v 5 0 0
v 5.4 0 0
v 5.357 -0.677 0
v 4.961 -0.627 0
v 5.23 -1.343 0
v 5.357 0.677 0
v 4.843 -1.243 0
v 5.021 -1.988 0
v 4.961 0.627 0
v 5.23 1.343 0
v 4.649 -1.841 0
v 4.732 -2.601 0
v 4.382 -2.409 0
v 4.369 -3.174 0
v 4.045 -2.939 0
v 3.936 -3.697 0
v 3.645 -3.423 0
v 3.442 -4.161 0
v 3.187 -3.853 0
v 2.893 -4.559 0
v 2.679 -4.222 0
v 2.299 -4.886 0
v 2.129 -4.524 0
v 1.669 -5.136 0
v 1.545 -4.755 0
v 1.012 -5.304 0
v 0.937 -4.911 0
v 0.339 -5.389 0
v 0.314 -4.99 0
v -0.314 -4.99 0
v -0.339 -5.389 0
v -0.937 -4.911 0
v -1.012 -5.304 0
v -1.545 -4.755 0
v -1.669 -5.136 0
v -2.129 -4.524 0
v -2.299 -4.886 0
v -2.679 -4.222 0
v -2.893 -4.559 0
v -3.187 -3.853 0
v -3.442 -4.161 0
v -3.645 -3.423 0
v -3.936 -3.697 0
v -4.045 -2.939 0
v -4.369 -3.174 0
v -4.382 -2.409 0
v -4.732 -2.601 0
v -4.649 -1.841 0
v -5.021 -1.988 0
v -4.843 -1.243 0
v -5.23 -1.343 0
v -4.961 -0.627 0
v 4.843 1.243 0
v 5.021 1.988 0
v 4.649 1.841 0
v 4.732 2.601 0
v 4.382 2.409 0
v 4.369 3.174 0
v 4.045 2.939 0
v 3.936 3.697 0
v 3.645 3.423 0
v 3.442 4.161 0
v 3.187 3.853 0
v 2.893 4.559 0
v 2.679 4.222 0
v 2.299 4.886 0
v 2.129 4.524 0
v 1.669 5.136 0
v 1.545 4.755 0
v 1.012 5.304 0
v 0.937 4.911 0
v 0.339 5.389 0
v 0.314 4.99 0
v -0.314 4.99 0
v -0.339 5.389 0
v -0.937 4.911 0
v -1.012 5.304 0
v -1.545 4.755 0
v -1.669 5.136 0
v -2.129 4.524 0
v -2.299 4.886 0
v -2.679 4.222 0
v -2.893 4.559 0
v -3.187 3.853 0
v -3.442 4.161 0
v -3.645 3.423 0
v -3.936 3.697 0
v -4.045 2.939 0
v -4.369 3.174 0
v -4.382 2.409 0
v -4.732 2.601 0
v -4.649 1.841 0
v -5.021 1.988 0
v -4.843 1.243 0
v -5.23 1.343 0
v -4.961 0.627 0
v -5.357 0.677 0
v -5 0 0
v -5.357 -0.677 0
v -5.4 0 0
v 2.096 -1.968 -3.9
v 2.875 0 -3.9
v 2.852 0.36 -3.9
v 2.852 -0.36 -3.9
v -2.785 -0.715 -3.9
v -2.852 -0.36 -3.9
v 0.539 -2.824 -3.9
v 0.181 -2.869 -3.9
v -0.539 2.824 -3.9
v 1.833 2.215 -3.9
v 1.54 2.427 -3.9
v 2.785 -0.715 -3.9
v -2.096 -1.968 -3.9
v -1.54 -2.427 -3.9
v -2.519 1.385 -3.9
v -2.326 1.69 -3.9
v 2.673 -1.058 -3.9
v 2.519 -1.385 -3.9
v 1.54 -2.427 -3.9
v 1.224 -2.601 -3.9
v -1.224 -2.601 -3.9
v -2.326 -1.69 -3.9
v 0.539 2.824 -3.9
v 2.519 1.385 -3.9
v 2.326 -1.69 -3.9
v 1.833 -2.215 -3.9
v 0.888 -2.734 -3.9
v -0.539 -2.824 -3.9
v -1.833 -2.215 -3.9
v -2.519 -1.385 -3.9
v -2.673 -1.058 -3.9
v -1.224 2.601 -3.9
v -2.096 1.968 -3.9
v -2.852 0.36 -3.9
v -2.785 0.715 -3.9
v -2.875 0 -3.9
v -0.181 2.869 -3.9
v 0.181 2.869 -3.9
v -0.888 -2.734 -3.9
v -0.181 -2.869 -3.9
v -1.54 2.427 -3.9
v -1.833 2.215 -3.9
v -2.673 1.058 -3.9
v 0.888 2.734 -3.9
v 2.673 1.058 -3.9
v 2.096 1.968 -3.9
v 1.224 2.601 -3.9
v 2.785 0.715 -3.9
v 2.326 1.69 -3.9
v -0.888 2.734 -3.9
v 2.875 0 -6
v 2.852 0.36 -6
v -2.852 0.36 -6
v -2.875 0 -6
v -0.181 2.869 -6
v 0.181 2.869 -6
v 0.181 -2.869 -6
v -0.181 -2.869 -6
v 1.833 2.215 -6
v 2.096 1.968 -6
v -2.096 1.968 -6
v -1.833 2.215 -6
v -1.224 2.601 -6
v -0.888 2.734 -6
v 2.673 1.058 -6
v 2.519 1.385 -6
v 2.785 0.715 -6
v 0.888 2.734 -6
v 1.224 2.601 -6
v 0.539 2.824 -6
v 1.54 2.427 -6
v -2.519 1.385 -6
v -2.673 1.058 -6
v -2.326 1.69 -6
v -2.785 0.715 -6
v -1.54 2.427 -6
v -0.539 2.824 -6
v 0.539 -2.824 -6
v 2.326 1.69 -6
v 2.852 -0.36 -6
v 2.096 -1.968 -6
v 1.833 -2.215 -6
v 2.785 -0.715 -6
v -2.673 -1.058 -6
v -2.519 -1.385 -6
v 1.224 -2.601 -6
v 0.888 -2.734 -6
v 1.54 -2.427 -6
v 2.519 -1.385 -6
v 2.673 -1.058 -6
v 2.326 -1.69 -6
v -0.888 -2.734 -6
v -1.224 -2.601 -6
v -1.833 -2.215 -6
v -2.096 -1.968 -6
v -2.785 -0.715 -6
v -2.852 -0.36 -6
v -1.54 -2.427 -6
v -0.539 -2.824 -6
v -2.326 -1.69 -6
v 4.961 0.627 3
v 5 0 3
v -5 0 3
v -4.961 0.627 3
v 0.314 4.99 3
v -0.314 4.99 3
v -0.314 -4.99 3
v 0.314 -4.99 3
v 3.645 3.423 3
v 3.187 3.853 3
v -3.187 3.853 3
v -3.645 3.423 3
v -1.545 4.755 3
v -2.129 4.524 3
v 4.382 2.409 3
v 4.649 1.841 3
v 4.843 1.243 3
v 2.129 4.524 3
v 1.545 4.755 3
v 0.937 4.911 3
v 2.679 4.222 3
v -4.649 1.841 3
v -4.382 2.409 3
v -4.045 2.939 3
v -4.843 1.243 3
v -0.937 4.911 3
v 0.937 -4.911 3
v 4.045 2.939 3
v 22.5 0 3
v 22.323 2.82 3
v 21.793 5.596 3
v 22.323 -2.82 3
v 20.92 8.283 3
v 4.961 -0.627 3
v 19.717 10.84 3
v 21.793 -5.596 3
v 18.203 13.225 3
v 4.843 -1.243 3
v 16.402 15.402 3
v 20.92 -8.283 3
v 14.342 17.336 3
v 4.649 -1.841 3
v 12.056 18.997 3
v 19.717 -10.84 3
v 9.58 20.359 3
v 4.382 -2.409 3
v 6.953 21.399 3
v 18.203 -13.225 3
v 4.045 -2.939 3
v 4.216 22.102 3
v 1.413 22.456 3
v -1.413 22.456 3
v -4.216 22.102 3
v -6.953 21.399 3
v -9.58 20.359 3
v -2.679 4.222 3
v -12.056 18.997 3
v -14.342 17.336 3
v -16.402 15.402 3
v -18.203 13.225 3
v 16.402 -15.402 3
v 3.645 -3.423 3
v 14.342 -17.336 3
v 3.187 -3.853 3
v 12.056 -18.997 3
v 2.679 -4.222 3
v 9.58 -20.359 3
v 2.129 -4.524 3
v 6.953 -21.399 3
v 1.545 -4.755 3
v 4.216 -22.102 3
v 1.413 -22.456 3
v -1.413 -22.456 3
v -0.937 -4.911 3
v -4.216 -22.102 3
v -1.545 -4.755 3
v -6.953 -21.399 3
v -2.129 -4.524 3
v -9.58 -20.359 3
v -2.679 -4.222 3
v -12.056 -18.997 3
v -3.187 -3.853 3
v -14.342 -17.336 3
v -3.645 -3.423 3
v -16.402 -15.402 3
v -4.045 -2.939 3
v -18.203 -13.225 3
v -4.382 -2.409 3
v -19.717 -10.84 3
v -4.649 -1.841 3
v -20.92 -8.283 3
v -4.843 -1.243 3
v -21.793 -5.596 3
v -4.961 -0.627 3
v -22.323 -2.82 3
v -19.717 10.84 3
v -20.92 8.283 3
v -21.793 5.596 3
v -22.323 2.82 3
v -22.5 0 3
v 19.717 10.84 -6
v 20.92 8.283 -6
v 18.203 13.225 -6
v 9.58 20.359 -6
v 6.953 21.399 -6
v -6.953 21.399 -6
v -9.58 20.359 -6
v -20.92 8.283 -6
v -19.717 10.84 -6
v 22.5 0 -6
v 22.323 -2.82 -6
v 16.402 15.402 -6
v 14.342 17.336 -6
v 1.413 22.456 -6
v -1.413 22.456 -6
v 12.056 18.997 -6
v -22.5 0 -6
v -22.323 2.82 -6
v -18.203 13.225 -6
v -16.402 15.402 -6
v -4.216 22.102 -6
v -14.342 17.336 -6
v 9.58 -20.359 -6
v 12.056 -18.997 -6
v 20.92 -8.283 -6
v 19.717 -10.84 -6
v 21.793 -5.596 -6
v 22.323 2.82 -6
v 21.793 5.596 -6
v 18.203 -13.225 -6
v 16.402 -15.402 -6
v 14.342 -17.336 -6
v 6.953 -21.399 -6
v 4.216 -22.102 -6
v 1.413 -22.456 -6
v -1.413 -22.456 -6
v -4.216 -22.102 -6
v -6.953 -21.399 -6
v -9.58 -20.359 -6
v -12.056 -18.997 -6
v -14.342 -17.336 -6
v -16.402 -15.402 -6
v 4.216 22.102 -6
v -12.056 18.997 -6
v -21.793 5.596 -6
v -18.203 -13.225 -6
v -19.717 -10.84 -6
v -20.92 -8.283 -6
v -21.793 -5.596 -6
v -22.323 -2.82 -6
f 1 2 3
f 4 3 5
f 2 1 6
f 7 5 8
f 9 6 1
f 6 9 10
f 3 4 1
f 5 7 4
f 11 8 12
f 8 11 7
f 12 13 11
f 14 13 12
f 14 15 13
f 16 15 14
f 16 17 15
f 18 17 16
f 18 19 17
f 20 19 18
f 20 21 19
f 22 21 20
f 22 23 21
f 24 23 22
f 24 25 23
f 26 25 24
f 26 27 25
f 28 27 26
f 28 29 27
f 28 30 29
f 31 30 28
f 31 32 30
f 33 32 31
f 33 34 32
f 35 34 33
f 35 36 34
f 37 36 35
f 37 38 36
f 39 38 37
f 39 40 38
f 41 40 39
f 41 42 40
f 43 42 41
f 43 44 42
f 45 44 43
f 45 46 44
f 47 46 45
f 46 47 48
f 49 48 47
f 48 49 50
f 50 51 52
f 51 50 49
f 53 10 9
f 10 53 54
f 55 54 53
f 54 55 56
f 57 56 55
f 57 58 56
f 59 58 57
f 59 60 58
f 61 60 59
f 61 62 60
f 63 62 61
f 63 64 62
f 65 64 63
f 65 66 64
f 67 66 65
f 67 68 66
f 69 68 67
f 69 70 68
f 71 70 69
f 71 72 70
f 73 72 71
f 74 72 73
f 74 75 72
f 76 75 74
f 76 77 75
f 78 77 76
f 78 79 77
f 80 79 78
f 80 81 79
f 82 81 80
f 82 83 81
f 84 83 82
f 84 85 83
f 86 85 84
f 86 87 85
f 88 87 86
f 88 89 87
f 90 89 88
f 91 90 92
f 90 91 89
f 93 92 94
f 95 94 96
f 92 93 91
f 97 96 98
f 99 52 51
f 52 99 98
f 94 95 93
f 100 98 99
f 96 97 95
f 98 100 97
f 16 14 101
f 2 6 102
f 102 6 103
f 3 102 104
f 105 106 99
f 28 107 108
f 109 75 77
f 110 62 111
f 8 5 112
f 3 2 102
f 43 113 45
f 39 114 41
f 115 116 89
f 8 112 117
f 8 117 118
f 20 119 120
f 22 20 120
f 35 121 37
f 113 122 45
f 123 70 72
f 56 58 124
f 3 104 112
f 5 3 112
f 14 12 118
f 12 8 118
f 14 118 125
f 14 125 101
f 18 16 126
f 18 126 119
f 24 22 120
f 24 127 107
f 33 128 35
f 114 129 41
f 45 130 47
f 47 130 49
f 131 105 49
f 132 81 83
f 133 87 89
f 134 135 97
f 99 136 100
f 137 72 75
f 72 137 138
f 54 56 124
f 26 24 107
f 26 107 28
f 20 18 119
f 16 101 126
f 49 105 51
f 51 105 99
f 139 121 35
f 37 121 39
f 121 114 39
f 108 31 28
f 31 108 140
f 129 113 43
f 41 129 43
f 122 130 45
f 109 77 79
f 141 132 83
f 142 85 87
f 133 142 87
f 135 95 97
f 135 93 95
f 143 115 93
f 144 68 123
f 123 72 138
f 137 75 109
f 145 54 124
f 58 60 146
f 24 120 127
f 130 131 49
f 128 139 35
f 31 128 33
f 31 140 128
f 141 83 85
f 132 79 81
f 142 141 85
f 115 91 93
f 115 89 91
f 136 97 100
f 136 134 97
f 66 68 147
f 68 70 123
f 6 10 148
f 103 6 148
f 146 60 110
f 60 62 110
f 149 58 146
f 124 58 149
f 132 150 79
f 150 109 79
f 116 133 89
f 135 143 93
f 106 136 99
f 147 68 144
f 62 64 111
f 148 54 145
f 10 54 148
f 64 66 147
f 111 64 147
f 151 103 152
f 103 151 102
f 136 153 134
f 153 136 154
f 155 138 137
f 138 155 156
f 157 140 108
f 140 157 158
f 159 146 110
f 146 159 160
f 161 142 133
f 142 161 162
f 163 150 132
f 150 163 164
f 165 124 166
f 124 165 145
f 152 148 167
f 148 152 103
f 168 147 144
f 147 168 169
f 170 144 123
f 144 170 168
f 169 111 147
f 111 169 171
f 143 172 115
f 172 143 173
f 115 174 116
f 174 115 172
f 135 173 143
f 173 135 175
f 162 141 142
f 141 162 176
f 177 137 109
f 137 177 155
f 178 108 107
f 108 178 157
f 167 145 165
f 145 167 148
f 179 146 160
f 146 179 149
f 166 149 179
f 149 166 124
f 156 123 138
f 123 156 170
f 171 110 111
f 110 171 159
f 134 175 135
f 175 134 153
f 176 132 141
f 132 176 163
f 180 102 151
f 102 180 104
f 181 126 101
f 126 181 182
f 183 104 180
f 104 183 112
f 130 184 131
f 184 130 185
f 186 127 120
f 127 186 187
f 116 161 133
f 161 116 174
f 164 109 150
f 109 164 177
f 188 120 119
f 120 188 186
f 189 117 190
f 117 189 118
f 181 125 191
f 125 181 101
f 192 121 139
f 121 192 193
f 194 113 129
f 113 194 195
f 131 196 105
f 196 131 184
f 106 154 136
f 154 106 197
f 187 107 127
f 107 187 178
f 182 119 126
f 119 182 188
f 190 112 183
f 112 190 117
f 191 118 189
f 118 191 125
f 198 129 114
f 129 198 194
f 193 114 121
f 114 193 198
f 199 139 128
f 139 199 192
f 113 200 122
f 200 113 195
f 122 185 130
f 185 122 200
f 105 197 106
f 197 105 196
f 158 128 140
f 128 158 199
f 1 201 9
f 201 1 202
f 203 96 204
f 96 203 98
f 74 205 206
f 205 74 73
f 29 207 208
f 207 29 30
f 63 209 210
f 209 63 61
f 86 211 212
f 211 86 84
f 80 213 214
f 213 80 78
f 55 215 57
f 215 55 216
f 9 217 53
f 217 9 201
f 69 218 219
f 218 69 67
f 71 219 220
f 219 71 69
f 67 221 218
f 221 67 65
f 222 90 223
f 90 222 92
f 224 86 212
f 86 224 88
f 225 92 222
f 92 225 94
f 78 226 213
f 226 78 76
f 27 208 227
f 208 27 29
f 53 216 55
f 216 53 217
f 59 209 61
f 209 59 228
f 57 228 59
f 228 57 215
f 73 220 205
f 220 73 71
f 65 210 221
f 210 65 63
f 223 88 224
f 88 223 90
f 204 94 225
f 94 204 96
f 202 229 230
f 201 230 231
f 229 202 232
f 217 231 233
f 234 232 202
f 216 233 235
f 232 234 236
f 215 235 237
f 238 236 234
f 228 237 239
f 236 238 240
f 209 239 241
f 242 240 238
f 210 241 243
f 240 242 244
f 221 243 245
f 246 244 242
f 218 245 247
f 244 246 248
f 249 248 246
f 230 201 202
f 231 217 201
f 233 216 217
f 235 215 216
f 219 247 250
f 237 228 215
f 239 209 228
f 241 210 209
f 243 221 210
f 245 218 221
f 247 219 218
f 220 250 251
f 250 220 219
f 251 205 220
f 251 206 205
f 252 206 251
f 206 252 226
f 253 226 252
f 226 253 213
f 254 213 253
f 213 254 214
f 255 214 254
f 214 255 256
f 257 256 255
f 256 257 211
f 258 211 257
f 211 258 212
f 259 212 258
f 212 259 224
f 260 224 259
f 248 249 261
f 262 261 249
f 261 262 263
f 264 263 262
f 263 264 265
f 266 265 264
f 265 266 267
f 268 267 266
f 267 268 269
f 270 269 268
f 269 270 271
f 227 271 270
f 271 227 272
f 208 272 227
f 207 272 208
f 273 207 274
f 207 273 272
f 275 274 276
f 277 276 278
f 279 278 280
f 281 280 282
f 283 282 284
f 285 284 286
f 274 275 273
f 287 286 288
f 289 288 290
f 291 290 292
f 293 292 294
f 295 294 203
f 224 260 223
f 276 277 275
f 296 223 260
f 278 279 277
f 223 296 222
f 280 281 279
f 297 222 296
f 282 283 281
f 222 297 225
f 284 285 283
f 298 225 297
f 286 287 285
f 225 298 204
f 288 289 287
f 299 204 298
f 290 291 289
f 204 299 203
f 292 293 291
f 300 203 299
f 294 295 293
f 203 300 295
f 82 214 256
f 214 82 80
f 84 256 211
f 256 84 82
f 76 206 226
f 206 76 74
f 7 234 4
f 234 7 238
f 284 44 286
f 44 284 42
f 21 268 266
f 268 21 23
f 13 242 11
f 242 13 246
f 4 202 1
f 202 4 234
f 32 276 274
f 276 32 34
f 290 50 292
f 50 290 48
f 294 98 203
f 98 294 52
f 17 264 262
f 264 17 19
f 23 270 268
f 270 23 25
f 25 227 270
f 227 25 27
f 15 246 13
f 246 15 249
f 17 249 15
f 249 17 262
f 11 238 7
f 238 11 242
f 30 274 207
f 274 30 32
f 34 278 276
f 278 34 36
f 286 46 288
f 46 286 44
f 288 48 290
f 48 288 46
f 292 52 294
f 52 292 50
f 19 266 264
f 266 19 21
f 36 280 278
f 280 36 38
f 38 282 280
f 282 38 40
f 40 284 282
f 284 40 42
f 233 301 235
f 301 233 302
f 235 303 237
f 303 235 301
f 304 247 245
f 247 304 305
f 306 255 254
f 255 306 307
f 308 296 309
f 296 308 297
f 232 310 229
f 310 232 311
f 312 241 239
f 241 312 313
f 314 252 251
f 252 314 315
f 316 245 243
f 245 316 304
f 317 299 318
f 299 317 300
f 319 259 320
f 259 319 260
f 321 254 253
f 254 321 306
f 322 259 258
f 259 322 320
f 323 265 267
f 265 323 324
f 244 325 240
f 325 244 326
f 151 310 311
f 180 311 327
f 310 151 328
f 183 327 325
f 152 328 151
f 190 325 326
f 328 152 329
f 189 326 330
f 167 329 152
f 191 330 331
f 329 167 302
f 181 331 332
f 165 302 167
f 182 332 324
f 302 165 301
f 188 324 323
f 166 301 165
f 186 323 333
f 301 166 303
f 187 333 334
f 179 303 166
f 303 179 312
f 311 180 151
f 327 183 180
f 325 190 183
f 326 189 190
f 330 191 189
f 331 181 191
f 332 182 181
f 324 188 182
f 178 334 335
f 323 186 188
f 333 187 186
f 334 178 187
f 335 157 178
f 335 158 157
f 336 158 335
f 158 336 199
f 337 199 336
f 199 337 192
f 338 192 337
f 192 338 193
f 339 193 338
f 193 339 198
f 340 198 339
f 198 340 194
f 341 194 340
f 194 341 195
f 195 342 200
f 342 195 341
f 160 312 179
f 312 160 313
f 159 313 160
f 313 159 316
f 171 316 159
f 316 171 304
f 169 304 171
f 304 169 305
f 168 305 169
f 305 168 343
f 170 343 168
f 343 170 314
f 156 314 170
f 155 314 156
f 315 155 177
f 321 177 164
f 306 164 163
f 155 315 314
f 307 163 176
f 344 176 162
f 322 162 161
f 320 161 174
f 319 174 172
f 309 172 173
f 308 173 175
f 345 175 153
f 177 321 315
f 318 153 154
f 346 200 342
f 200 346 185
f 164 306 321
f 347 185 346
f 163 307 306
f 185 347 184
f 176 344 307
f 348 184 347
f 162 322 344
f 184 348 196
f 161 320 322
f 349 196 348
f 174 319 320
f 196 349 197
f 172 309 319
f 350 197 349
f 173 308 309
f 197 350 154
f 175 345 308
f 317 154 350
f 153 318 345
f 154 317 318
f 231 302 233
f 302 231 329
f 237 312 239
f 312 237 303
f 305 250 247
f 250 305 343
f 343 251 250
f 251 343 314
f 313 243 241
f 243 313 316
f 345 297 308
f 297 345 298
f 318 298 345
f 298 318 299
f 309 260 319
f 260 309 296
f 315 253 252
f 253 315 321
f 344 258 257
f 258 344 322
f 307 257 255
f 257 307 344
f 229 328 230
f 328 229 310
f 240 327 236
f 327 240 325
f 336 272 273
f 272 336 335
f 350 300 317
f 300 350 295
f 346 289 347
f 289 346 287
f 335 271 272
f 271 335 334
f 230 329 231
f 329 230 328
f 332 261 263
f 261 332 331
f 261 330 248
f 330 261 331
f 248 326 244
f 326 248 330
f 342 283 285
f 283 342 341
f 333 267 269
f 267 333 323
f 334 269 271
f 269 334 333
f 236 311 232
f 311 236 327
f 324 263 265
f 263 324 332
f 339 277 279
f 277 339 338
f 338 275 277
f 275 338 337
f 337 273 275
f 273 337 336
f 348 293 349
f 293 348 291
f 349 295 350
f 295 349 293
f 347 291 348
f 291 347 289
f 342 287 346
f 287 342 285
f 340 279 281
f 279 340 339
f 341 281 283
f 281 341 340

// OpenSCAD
$fn = 50;

difference() {
	union() {
		translate(v = [0, 0, -6.0]) {
			cylinder(h = 9, r = 22.5);
		}
	}
	union() {
		translate(v = [0, 0, 0]) {
			rotate(a = [0, 0, 0]) {
				difference() {
					union() {
						translate(v = [0, 0, -9.0]) {
							cylinder(h = 9, r = 2.6);
						}
						translate(v = [0, 0, -3.9]) {
							cylinder(h = 3.9, r1 = 2.875, r2 = 5.4);
						}
						translate(v = [0, 0, -9.0]) {
							cylinder(h = 9, r = 2.875);
						}
						translate(v = [0, 0, -9.0]) {
							cylinder(h = 9, r = 2.6);
						}
					}
					union();
				}
			}
		}
		#cylinder(h = 3, r = 5.0);
	}
}
